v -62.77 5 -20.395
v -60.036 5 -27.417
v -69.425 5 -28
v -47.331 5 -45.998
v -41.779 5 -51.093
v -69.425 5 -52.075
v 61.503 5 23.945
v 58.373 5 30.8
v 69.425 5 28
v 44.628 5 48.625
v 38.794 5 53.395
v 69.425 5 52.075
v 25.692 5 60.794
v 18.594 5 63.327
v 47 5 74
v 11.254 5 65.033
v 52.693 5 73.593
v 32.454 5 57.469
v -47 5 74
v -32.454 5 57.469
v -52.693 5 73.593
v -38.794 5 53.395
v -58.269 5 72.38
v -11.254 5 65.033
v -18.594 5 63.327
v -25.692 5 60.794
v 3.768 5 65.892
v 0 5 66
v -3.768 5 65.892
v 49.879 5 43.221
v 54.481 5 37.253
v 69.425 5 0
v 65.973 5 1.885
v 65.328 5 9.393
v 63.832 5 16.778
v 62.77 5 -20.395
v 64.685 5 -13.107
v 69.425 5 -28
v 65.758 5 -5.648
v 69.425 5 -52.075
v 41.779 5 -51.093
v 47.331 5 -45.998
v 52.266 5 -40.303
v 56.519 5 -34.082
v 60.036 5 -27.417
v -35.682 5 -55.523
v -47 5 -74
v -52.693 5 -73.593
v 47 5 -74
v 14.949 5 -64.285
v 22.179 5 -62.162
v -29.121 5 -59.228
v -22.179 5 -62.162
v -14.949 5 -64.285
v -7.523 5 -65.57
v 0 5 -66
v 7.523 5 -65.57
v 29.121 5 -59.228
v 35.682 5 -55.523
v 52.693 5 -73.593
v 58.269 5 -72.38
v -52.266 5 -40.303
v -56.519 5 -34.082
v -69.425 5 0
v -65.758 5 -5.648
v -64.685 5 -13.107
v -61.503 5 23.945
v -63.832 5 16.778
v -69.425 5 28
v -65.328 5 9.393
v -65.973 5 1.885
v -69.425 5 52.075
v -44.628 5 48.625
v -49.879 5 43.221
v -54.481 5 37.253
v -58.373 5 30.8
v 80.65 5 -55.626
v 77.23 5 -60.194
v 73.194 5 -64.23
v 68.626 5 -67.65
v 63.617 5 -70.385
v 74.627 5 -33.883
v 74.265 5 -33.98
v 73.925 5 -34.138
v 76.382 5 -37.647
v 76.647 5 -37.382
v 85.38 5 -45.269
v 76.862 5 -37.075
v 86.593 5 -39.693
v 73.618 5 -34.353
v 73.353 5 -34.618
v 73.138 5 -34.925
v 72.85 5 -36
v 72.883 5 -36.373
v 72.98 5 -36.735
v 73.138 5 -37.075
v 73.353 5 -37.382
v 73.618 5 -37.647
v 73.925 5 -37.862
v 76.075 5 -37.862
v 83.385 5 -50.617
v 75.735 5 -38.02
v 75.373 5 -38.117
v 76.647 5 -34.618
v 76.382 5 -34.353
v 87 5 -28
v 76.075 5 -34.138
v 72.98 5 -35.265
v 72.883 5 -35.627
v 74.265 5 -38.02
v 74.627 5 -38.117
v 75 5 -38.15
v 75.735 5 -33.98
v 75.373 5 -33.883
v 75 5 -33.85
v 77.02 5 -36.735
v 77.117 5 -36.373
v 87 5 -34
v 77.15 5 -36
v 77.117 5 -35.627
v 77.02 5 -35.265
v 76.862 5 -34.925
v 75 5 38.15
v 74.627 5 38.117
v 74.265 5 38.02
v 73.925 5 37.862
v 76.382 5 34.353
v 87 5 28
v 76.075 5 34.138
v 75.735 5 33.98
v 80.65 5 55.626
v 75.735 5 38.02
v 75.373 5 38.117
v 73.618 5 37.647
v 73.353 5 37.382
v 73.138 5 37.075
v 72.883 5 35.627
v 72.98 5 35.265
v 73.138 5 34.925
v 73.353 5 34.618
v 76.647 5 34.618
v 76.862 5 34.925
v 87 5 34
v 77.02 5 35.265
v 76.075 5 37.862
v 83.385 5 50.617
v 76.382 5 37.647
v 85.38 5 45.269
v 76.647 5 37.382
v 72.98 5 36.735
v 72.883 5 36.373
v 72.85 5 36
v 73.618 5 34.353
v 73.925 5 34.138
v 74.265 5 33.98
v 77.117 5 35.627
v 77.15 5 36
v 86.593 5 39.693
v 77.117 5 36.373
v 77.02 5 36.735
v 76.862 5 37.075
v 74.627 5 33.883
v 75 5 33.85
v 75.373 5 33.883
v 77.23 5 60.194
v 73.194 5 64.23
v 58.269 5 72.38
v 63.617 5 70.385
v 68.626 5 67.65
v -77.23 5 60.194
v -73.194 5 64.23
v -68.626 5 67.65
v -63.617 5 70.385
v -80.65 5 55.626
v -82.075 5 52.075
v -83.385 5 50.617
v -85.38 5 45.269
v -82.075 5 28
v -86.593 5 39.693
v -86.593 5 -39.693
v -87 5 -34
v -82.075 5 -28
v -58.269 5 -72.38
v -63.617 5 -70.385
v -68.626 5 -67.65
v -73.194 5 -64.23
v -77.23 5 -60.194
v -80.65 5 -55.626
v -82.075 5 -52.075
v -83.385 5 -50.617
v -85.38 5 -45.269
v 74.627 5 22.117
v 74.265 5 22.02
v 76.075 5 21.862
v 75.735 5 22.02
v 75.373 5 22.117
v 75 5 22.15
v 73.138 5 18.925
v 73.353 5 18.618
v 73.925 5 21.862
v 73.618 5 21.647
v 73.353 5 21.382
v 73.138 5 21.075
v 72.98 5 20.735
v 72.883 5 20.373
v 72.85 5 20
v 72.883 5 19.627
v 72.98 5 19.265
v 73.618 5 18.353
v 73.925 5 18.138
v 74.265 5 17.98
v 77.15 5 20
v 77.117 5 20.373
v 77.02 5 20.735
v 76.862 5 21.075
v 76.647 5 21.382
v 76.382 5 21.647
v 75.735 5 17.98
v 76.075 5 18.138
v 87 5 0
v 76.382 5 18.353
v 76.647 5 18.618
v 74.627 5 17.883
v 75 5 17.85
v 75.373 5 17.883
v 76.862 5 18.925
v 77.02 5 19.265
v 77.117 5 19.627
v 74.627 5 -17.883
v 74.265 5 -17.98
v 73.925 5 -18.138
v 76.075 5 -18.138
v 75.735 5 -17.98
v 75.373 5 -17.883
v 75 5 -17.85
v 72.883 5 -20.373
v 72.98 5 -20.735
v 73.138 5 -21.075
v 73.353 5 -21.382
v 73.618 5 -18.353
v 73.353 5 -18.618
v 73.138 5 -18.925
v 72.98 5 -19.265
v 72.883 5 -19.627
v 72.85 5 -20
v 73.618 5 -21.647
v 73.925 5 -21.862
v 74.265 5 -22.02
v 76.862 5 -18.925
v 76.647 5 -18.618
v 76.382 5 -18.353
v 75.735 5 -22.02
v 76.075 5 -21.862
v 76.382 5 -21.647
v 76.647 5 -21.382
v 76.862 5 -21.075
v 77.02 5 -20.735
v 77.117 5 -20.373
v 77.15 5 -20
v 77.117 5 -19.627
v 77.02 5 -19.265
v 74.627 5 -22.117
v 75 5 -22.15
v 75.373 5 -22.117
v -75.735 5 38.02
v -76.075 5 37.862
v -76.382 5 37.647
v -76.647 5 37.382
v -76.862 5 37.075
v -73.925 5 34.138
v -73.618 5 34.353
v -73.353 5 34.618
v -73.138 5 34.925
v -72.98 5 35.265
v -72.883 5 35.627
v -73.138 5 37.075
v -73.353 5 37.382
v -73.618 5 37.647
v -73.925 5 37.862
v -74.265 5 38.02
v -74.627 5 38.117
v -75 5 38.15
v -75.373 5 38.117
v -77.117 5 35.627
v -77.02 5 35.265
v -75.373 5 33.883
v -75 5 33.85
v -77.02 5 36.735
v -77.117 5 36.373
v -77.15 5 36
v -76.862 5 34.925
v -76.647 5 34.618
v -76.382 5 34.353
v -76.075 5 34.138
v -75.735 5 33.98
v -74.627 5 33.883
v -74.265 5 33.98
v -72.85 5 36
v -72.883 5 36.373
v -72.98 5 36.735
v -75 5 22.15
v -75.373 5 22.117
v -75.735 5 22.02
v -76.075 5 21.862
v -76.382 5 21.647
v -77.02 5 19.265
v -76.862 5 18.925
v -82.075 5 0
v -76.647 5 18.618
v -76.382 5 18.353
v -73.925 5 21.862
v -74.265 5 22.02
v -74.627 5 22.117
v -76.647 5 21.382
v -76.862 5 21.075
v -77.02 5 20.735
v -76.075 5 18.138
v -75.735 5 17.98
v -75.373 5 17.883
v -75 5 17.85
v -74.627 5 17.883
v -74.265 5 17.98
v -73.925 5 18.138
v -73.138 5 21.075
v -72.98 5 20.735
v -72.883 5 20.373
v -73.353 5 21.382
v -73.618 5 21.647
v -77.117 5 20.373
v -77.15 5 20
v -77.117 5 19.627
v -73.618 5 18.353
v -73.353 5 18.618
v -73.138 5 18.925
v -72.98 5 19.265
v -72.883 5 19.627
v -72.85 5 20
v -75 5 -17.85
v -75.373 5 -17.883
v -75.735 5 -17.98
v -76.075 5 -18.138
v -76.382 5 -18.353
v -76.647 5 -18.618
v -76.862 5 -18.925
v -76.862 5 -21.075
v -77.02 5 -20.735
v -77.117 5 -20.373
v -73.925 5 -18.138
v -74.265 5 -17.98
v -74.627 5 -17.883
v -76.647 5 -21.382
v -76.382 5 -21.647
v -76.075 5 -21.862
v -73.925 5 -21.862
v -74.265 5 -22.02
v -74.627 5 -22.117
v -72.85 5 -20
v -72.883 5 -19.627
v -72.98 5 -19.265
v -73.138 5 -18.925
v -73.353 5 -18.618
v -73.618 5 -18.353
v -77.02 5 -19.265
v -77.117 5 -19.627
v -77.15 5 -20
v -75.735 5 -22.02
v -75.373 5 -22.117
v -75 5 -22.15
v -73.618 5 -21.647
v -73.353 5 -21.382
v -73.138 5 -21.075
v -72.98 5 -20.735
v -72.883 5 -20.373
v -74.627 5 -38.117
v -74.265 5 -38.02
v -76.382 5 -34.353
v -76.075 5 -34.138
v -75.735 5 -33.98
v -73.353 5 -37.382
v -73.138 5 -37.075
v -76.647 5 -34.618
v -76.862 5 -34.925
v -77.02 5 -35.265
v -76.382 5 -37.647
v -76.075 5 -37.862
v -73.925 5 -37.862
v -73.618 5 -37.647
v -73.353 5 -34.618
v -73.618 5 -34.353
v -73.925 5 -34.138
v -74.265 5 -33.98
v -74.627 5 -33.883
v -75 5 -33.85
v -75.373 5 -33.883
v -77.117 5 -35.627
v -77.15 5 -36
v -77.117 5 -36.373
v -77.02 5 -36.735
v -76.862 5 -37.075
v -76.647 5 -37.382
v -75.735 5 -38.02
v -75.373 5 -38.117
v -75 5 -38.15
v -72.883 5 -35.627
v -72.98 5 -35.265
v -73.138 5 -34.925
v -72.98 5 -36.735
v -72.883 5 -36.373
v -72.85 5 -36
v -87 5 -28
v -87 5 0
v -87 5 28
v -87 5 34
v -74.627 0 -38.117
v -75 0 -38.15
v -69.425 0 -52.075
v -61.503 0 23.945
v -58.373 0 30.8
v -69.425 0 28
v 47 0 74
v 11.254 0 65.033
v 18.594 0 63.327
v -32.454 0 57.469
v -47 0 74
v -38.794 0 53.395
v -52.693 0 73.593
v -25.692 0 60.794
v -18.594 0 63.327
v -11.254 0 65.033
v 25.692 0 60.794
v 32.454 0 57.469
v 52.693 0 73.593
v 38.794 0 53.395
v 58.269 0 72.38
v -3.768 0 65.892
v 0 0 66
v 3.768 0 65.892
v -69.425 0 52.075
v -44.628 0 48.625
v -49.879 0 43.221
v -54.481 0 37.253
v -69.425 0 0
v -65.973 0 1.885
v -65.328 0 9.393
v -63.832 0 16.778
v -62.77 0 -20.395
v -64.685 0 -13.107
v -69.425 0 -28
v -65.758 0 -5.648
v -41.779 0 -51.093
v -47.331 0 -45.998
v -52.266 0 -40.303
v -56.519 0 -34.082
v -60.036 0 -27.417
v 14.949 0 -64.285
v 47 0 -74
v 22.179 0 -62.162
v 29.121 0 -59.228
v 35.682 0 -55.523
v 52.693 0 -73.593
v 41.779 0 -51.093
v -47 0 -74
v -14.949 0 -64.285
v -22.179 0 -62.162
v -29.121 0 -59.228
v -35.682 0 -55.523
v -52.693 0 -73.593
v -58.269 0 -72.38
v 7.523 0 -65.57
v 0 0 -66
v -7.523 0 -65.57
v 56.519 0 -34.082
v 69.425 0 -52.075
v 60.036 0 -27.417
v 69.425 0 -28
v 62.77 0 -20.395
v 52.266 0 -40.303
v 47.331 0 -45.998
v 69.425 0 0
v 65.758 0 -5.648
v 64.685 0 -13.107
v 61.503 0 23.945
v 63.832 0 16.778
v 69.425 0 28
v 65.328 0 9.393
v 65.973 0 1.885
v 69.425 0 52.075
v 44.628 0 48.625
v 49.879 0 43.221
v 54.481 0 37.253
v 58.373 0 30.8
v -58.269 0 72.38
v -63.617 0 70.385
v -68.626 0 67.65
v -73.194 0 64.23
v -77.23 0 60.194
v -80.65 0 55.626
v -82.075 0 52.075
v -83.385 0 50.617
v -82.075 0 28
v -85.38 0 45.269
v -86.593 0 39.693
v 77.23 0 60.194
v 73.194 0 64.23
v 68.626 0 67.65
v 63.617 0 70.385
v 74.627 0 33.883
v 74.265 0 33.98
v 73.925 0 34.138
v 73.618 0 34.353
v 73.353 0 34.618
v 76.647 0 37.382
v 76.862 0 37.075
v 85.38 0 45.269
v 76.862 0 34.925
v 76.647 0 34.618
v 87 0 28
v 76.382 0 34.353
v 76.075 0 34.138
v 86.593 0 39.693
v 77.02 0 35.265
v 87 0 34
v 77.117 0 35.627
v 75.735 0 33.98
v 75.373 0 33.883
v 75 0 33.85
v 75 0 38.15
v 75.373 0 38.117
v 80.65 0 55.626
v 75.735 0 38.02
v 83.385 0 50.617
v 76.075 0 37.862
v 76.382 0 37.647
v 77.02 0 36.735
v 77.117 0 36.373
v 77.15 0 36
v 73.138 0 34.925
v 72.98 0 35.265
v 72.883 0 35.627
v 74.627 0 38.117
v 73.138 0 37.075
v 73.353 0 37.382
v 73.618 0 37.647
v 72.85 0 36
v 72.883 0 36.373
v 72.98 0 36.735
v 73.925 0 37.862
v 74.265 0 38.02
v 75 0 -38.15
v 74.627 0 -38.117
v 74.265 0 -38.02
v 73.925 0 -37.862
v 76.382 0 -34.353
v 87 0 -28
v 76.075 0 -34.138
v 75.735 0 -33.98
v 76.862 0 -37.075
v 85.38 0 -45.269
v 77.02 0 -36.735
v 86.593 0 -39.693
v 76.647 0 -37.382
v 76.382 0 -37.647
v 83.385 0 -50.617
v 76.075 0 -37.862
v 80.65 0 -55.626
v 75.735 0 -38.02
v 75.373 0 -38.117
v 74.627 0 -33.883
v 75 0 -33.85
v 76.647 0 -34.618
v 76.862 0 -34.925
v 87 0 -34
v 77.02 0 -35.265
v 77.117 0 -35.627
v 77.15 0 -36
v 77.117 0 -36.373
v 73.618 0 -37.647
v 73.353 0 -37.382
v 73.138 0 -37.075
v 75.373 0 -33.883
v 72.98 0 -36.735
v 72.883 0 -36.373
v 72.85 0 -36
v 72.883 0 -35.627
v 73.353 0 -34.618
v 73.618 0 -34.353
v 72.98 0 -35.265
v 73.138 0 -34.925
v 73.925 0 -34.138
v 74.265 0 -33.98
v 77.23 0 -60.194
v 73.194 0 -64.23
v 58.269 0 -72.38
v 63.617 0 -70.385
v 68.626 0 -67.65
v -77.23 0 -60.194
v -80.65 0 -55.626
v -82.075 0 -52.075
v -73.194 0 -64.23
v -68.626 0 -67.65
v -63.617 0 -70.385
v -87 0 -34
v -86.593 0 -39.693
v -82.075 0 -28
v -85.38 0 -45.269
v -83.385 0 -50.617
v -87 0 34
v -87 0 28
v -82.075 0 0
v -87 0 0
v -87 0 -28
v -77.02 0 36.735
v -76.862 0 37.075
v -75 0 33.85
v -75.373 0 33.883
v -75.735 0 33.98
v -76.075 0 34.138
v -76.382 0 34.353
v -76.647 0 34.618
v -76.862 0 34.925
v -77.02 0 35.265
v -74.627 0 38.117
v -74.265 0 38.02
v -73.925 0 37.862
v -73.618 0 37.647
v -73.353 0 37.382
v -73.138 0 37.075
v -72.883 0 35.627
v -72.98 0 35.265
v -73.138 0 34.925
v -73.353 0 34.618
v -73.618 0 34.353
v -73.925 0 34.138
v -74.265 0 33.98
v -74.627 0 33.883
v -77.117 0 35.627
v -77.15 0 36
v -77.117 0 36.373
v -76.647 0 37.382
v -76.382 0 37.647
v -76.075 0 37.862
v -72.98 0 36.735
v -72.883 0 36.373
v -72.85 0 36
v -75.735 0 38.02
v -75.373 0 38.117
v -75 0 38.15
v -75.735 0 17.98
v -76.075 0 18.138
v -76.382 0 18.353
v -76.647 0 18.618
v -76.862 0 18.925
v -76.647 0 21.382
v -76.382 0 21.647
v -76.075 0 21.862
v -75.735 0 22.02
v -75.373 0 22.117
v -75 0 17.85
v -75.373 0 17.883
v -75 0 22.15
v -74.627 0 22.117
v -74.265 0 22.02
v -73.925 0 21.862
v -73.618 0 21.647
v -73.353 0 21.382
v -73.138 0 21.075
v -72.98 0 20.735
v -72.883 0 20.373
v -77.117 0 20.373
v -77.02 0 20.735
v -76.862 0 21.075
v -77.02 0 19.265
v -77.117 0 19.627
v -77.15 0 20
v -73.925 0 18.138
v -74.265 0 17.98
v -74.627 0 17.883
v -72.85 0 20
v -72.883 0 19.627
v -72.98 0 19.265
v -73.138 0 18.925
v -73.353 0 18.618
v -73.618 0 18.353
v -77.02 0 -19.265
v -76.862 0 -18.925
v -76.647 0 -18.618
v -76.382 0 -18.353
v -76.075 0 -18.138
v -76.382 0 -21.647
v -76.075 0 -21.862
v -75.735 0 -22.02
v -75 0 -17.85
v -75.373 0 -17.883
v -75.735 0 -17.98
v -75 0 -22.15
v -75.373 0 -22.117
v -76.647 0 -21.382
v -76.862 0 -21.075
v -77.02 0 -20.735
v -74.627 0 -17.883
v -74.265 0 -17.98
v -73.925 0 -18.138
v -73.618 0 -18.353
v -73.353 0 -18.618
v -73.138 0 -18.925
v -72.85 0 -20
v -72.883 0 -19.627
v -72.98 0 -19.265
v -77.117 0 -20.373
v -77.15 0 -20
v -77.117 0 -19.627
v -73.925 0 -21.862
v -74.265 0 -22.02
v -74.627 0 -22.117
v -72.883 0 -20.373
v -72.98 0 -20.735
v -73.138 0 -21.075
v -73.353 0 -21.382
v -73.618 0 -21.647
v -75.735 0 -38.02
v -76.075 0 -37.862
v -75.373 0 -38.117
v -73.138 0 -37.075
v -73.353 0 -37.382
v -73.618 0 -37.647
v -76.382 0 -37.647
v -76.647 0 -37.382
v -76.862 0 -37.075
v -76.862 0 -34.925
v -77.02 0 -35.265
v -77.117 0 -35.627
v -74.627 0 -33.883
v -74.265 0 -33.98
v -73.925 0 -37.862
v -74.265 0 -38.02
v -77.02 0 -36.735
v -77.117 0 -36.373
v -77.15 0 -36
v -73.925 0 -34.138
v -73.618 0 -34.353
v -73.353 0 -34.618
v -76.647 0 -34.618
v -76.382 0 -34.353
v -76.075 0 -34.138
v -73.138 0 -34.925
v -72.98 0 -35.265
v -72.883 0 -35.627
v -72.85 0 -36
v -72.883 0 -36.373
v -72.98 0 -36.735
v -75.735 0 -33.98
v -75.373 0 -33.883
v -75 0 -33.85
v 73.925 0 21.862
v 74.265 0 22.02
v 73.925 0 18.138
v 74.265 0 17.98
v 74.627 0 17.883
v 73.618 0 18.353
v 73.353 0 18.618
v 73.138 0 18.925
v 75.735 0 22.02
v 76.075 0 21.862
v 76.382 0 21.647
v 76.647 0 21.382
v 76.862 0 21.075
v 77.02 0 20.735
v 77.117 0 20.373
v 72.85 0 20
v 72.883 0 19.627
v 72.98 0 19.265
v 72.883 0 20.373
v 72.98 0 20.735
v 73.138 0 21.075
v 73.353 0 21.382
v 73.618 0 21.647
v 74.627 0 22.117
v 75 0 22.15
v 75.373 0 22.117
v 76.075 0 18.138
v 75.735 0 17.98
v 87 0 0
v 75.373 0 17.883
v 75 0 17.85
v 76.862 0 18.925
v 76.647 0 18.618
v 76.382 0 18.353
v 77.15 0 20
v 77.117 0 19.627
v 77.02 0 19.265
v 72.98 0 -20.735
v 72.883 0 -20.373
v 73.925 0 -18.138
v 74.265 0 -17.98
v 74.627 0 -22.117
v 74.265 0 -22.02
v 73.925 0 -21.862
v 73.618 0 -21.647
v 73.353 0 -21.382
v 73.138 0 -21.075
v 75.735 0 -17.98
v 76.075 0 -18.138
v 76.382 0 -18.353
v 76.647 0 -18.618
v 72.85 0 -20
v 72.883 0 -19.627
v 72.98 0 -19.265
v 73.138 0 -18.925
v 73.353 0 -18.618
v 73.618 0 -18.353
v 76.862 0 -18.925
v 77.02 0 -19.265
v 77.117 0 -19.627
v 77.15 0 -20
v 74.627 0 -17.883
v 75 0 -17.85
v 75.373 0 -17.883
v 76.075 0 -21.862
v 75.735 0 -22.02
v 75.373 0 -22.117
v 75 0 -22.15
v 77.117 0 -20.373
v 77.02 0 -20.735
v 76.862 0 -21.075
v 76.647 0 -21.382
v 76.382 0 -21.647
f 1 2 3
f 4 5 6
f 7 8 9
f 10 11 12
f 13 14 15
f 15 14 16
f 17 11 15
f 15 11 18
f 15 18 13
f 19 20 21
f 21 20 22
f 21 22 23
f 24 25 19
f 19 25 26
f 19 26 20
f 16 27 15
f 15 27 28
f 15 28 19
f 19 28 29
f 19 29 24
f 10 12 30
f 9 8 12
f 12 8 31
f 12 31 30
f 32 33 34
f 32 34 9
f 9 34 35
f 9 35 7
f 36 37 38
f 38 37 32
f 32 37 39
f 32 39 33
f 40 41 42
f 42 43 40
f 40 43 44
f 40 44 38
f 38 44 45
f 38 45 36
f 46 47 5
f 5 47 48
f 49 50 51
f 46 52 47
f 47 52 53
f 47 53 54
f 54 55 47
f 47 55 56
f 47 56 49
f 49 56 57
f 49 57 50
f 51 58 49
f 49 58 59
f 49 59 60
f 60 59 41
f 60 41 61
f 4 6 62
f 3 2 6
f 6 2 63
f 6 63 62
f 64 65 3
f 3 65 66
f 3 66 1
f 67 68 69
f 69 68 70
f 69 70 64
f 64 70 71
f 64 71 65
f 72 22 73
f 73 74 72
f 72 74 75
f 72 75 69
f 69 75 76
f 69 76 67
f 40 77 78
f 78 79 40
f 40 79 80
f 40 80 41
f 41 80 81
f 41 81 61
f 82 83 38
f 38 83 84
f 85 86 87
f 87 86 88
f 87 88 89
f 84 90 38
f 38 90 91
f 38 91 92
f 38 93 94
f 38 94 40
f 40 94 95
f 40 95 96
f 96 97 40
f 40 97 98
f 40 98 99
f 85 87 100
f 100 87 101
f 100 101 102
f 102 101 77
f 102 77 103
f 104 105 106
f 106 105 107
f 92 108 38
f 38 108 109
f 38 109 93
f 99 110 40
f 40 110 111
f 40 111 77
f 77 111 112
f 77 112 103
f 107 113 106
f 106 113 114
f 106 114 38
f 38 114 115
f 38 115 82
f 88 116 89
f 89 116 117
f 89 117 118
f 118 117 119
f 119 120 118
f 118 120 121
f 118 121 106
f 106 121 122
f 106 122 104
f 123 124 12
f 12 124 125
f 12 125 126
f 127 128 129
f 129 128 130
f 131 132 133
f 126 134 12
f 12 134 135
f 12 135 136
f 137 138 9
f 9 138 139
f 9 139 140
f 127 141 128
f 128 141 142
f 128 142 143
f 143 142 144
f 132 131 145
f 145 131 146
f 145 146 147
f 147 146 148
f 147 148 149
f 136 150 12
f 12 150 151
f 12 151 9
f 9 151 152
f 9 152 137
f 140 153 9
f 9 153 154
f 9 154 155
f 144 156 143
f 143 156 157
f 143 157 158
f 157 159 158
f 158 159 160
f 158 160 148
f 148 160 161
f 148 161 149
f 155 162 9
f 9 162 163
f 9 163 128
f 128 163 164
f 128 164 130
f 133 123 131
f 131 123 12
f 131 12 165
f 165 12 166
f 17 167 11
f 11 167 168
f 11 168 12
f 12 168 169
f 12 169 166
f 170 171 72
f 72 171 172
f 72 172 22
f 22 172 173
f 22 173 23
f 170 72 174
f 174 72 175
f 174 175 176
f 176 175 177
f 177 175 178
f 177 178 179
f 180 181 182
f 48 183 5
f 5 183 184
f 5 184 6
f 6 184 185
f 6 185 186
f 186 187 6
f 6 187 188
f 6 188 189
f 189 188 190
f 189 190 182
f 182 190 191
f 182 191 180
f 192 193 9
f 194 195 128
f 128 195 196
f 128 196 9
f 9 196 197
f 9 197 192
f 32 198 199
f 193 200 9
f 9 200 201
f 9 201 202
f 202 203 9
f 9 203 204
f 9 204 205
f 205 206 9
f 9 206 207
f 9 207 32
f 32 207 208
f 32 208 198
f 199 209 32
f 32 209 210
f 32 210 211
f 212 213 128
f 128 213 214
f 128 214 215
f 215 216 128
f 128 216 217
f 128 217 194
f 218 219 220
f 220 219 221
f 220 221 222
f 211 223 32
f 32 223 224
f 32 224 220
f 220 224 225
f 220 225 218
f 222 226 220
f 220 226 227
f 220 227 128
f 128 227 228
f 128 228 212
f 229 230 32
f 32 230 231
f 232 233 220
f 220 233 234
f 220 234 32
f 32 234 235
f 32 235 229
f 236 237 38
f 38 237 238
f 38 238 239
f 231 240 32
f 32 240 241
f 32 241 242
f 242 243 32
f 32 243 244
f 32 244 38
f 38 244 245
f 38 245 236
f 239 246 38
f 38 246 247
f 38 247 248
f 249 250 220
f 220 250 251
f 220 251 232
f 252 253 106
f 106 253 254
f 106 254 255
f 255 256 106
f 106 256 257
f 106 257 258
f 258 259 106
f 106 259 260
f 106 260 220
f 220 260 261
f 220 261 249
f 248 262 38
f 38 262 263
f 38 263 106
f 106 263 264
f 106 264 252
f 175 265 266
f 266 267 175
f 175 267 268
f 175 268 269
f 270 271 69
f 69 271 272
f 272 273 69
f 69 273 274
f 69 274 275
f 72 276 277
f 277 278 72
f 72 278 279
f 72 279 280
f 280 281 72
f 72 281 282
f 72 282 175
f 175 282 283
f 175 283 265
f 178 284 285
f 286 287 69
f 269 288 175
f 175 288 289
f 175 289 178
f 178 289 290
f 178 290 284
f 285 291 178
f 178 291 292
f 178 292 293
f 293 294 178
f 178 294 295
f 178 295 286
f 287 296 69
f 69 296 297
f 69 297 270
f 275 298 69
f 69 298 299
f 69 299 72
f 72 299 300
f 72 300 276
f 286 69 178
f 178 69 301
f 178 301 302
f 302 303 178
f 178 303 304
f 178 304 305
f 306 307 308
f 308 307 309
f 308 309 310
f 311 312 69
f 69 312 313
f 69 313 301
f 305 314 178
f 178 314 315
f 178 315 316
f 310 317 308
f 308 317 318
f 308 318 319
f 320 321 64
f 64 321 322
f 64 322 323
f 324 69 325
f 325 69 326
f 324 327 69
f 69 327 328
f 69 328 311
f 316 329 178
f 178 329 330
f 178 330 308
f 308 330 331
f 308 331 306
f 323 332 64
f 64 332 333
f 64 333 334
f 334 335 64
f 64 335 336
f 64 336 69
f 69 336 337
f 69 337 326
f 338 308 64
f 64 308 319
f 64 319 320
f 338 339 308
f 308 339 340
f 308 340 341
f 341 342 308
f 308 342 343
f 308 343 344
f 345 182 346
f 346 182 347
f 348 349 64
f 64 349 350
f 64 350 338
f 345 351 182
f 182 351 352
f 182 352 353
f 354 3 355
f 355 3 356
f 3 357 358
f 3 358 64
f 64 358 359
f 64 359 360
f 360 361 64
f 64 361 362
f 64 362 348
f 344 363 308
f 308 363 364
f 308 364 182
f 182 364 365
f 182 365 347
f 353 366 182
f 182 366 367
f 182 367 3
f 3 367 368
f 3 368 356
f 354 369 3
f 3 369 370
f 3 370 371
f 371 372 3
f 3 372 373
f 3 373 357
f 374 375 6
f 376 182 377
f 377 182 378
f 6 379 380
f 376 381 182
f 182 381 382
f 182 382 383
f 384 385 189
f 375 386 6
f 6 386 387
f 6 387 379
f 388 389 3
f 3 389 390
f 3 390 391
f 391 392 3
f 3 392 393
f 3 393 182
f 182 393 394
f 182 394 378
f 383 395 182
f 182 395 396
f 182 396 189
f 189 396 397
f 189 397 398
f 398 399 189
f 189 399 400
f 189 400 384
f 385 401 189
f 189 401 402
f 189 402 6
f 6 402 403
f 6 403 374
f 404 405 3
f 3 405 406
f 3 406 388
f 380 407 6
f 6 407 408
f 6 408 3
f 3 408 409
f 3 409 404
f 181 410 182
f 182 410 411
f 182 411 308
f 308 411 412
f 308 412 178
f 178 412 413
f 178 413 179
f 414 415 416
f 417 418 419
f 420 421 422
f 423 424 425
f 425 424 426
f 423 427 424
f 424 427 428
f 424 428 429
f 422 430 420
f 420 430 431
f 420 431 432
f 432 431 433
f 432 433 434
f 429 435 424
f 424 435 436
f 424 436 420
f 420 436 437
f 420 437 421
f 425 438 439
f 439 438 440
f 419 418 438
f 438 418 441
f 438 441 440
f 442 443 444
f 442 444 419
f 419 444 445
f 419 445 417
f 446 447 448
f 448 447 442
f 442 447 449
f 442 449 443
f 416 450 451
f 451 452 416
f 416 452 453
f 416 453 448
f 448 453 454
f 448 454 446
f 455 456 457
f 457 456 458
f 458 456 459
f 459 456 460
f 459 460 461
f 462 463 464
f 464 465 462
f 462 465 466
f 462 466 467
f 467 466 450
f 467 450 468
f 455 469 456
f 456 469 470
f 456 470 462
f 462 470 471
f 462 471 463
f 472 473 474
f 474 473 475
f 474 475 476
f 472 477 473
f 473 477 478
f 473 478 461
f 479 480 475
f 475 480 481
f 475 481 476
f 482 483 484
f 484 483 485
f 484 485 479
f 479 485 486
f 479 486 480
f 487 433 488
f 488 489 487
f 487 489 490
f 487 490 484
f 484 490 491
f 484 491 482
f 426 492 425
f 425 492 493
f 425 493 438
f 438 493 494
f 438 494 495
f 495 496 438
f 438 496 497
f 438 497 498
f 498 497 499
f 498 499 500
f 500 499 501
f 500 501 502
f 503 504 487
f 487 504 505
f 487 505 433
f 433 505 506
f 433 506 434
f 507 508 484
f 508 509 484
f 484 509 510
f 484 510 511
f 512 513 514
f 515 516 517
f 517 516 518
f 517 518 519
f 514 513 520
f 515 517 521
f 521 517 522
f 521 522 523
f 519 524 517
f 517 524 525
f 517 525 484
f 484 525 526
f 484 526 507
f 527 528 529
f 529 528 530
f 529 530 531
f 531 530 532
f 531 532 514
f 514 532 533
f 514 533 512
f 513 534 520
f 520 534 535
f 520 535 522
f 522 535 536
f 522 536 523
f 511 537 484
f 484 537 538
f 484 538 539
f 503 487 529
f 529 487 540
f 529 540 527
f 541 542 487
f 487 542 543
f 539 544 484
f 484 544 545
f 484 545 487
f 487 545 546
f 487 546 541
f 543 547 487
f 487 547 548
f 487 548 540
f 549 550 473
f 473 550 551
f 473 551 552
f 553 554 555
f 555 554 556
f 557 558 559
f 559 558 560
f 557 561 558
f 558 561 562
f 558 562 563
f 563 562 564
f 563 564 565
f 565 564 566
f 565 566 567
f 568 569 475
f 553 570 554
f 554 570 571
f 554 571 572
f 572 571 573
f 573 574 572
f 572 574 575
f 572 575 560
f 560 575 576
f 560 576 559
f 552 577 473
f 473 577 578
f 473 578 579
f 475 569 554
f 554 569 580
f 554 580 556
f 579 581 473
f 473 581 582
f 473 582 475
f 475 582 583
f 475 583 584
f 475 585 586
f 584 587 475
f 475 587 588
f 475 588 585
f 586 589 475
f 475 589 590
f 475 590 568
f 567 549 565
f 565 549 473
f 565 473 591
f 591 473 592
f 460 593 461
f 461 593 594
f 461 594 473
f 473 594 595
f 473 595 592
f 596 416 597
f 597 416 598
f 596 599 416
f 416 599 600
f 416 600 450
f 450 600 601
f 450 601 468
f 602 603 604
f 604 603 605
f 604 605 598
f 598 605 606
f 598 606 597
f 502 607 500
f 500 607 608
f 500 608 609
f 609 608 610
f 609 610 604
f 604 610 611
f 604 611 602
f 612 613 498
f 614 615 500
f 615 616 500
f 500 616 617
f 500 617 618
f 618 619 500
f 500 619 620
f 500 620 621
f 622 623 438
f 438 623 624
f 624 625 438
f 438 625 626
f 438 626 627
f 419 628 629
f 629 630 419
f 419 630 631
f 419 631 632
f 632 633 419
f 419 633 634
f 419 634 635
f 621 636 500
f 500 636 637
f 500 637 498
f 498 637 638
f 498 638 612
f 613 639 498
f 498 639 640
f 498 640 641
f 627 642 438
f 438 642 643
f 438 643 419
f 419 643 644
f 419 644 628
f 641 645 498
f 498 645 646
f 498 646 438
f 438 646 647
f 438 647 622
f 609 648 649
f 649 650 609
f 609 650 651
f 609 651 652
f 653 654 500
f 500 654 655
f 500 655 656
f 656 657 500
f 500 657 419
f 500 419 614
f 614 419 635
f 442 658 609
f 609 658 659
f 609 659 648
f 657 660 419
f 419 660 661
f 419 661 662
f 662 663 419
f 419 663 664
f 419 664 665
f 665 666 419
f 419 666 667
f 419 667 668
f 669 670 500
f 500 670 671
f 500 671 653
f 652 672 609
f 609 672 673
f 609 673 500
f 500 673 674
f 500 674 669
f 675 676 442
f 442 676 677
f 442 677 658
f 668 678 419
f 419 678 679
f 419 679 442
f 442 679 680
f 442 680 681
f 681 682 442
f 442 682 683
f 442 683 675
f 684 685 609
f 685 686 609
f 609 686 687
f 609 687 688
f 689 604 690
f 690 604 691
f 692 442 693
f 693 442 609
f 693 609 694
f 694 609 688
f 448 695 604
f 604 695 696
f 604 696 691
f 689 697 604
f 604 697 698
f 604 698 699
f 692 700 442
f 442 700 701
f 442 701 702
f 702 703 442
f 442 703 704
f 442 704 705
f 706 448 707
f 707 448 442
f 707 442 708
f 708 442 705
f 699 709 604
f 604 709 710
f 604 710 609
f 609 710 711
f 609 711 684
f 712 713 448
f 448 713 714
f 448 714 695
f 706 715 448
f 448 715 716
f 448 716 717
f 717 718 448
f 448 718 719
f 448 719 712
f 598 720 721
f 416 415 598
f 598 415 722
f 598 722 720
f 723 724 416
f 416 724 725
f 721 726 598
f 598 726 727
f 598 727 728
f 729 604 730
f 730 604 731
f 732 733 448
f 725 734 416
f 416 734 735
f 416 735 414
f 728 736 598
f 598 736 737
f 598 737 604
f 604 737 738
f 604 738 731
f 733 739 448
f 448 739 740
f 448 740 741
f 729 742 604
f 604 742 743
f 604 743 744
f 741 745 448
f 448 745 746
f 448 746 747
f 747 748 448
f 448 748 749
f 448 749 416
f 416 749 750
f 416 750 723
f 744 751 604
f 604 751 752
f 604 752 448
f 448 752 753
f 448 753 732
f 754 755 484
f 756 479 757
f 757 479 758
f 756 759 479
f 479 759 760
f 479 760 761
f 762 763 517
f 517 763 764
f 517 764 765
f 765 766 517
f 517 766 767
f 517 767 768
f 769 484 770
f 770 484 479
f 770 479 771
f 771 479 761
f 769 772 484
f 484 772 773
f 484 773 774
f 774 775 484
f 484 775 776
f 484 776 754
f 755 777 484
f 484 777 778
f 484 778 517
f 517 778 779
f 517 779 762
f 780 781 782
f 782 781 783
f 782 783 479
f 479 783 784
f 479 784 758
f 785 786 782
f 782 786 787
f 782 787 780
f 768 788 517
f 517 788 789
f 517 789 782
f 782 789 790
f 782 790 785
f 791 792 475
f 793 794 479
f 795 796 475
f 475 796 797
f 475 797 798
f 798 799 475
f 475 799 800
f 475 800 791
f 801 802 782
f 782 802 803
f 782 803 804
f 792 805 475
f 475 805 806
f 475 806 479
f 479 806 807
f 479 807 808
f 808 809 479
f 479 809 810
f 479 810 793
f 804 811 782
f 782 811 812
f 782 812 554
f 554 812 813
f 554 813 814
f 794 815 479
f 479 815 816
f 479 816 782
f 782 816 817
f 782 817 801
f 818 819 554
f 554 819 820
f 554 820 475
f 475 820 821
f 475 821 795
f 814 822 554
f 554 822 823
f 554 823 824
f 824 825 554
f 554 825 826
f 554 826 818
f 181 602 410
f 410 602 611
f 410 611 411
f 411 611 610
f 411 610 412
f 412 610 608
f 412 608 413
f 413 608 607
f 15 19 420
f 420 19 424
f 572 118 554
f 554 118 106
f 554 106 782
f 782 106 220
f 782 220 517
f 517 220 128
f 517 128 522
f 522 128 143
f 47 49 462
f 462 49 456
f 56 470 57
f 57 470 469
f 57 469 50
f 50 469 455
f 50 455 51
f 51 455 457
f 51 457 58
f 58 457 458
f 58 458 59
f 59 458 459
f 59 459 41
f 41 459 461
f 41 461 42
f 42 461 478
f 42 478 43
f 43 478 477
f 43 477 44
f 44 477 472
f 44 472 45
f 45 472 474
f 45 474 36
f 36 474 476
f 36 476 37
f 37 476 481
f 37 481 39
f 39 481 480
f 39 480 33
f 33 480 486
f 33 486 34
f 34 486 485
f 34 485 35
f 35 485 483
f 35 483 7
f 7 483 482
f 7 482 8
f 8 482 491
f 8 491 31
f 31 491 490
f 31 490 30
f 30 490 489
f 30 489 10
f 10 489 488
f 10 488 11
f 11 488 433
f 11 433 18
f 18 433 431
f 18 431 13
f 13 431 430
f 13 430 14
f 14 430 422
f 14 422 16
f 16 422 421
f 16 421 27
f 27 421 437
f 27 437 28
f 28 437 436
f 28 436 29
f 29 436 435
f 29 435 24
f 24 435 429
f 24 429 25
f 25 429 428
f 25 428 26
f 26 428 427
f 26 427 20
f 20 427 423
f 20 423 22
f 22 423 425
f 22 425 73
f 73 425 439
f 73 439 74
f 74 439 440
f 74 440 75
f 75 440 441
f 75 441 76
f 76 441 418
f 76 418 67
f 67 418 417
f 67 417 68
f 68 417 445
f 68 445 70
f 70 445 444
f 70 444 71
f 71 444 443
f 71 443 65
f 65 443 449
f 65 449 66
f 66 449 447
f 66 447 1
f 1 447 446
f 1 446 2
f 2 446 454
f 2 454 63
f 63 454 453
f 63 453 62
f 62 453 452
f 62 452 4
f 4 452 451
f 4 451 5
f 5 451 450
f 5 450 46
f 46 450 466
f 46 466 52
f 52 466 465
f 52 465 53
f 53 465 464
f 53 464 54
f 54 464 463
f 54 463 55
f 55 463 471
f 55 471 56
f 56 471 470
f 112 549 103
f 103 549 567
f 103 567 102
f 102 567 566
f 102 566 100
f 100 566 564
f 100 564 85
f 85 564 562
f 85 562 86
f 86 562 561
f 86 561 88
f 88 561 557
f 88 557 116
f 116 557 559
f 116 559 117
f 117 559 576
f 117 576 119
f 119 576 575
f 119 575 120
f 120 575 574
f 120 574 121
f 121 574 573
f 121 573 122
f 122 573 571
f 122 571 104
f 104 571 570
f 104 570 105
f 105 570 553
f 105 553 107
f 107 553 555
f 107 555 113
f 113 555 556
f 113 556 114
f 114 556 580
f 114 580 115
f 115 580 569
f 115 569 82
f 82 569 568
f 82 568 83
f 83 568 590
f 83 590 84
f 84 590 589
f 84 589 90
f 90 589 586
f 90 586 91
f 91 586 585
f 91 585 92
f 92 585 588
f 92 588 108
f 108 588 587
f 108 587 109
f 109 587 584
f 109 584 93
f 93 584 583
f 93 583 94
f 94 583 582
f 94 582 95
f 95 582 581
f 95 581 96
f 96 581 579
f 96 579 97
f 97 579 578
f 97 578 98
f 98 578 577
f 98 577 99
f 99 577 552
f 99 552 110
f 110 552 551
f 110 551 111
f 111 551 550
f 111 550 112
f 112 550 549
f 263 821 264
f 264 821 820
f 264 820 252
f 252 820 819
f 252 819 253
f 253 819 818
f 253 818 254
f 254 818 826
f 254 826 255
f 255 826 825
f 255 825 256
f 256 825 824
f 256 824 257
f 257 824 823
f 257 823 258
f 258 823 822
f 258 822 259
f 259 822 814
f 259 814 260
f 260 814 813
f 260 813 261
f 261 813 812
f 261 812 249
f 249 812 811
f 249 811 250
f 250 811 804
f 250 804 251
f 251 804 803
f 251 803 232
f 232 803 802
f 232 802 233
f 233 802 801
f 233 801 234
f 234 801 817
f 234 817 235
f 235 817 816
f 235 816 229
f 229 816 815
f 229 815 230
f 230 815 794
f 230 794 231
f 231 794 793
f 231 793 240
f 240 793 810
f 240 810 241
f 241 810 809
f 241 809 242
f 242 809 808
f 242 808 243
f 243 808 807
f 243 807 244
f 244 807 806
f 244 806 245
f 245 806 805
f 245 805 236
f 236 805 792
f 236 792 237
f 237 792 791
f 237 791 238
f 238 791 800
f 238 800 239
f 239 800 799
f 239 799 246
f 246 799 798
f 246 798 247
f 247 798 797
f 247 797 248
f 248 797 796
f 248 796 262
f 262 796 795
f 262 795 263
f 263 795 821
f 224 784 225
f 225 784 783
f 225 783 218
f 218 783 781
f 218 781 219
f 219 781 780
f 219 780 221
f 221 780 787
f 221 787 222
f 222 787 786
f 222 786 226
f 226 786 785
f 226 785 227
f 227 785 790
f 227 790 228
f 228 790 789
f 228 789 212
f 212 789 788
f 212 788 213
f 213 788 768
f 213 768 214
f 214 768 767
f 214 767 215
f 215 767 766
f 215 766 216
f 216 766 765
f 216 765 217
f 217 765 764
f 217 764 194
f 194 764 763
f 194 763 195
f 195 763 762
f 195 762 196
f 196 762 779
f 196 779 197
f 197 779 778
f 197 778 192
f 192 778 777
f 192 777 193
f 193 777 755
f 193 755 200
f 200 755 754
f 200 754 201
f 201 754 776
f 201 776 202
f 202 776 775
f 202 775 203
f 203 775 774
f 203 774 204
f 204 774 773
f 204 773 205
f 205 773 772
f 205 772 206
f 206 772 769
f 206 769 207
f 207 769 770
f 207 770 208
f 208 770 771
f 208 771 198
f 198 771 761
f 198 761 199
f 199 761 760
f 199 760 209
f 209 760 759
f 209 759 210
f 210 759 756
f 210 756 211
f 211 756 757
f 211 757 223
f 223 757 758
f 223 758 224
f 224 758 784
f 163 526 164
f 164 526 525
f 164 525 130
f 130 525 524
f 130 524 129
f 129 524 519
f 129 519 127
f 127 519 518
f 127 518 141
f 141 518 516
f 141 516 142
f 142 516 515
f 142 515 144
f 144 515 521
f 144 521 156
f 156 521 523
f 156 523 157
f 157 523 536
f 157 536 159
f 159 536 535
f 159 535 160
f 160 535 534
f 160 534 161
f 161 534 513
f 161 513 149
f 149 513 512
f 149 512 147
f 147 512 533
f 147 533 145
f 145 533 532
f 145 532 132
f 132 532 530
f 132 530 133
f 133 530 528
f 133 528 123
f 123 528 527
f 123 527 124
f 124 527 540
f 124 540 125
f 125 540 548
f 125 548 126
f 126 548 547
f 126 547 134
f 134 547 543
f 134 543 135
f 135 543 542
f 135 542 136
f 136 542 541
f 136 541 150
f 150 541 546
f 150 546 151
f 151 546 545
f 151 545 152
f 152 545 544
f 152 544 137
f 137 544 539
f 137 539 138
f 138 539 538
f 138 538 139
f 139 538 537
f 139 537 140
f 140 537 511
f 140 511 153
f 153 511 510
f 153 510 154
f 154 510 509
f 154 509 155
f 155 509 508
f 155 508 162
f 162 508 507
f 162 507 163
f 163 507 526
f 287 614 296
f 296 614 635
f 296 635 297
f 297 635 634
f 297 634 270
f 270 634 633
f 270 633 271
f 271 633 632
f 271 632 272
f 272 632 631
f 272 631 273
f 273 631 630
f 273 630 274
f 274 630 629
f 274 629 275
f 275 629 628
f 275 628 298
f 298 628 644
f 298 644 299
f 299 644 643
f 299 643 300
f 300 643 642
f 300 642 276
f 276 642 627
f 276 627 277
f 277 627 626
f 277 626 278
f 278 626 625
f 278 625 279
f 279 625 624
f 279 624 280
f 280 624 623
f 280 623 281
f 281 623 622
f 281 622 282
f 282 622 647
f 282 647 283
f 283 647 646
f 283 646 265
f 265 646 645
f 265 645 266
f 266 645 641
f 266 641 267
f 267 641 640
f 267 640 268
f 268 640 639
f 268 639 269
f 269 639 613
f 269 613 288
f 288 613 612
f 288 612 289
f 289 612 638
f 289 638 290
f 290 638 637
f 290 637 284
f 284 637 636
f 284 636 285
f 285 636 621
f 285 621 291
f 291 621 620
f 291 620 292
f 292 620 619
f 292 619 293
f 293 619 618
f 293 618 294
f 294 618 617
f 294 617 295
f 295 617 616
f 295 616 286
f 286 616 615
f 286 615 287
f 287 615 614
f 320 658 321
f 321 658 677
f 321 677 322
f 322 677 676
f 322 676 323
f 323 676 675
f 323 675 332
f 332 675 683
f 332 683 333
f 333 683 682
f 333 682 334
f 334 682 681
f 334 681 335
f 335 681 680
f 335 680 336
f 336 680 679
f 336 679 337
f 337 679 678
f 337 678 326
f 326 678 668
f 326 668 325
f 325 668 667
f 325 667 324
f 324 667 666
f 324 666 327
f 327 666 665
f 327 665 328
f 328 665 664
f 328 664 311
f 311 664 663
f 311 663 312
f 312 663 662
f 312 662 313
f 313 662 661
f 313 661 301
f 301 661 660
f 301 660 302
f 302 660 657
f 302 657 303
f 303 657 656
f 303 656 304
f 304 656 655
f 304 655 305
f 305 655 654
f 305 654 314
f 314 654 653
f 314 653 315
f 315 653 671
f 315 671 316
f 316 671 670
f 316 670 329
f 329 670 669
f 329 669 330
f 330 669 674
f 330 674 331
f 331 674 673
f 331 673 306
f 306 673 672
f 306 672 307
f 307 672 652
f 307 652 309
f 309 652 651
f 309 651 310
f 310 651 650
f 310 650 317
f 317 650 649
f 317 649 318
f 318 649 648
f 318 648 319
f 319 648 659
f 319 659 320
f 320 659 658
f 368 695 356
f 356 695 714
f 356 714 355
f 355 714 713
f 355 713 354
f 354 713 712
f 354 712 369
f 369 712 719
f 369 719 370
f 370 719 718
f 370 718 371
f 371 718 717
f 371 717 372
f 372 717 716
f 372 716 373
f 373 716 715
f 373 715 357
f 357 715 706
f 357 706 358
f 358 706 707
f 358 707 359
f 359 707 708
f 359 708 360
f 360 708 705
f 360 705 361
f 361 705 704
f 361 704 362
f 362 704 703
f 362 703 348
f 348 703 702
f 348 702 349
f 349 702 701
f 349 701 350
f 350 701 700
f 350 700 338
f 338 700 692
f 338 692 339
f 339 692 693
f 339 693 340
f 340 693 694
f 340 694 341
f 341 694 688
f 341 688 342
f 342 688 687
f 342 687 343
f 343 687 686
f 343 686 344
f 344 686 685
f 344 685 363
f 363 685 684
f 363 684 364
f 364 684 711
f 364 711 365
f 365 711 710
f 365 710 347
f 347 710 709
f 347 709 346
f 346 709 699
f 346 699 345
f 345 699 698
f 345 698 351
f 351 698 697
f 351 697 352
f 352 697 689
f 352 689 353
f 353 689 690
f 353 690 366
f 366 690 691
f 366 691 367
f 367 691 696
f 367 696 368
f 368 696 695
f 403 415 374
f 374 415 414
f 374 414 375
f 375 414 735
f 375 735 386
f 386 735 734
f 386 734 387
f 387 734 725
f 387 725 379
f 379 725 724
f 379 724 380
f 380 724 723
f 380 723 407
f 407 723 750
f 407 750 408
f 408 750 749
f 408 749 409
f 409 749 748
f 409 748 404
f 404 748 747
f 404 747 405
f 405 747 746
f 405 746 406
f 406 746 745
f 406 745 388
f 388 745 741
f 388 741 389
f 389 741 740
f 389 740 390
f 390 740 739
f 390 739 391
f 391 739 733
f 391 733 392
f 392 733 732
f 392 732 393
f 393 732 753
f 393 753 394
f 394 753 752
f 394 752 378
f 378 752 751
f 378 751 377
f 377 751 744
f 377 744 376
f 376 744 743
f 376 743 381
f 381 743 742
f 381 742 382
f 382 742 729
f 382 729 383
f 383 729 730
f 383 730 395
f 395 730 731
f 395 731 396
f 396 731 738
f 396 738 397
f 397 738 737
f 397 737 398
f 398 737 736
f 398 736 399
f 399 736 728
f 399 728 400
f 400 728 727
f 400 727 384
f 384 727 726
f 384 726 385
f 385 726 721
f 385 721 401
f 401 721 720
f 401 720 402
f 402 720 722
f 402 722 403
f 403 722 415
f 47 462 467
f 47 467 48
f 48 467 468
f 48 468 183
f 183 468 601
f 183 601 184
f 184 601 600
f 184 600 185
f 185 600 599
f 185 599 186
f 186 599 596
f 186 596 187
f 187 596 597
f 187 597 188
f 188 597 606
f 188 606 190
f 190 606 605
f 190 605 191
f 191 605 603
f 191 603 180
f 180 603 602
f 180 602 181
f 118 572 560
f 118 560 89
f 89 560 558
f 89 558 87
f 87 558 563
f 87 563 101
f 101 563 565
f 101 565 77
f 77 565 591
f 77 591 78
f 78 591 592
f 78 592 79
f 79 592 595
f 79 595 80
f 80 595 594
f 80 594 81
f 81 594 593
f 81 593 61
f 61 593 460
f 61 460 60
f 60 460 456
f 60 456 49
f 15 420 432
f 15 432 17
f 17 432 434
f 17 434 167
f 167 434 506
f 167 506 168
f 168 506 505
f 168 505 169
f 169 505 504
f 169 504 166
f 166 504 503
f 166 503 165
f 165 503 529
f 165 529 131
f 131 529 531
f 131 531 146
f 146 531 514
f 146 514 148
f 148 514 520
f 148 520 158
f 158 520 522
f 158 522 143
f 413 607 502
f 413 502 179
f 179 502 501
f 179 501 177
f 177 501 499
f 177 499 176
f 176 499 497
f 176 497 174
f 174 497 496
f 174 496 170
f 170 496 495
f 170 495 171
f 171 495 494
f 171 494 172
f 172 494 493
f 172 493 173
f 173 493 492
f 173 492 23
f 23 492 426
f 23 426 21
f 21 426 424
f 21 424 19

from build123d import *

# Parameters (mm, degrees)
SKETCH1_W           = 174
SKETCH1_H           = 148
SKETCH1_R           = 66
SKETCH1_R_2         = 2.15
BOSS_EXTRUDE1_DEPTH = 5
FILLET1_R           = 40


with BuildPart() as part:
    # Sketch1 → Boss-Extrude1 (new body)
    with BuildSketch(Plane(origin=(0, 0, 0), x_dir=(1, 0, 0), z_dir=(0, 1, 0))):
        Rectangle(SKETCH1_W, SKETCH1_H)
        with Locations(Location((0, 0, 0), (0, 0, 270))):
            Circle(SKETCH1_R, mode=Mode.SUBTRACT)
        with Locations(Location((75, 36, 0), (0, 0, 270))):
            Circle(SKETCH1_R_2, mode=Mode.SUBTRACT)
        with Locations(Location((75, 20, 0), (0, 0, 270))):
            Circle(SKETCH1_R_2, mode=Mode.SUBTRACT)
        with Locations(Location((75, -20, 0), (0, 0, 90))):
            Circle(SKETCH1_R_2, mode=Mode.SUBTRACT)
        with Locations(Location((75, -36, 0), (0, 0, 90))):
            Circle(SKETCH1_R_2, mode=Mode.SUBTRACT)
        with Locations(Location((-75, -36, 0), (0, 0, 270))):
            Circle(SKETCH1_R_2, mode=Mode.SUBTRACT)
        with Locations(Location((-75, -20, 0), (0, 0, 270))):
            Circle(SKETCH1_R_2, mode=Mode.SUBTRACT)
        with Locations(Location((-75, 20, 0), (0, 0, 90))):
            Circle(SKETCH1_R_2, mode=Mode.SUBTRACT)
        with Locations(Location((-75, 36, 0), (0, 0, 90))):
            Circle(SKETCH1_R_2, mode=Mode.SUBTRACT)
    extrude(amount=BOSS_EXTRUDE1_DEPTH)

    # Fillet1
    fillet1_edges = [part.edges().sort_by_distance(p)[0] for p in [
        (-87, 2.5, -74),
        (87, 2.5, -74),
        (87, 2.5, 74),
        (-87, 2.5, 74),
    ]]
    fillet(fillet1_edges, radius=FILLET1_R)


solid = part.part
